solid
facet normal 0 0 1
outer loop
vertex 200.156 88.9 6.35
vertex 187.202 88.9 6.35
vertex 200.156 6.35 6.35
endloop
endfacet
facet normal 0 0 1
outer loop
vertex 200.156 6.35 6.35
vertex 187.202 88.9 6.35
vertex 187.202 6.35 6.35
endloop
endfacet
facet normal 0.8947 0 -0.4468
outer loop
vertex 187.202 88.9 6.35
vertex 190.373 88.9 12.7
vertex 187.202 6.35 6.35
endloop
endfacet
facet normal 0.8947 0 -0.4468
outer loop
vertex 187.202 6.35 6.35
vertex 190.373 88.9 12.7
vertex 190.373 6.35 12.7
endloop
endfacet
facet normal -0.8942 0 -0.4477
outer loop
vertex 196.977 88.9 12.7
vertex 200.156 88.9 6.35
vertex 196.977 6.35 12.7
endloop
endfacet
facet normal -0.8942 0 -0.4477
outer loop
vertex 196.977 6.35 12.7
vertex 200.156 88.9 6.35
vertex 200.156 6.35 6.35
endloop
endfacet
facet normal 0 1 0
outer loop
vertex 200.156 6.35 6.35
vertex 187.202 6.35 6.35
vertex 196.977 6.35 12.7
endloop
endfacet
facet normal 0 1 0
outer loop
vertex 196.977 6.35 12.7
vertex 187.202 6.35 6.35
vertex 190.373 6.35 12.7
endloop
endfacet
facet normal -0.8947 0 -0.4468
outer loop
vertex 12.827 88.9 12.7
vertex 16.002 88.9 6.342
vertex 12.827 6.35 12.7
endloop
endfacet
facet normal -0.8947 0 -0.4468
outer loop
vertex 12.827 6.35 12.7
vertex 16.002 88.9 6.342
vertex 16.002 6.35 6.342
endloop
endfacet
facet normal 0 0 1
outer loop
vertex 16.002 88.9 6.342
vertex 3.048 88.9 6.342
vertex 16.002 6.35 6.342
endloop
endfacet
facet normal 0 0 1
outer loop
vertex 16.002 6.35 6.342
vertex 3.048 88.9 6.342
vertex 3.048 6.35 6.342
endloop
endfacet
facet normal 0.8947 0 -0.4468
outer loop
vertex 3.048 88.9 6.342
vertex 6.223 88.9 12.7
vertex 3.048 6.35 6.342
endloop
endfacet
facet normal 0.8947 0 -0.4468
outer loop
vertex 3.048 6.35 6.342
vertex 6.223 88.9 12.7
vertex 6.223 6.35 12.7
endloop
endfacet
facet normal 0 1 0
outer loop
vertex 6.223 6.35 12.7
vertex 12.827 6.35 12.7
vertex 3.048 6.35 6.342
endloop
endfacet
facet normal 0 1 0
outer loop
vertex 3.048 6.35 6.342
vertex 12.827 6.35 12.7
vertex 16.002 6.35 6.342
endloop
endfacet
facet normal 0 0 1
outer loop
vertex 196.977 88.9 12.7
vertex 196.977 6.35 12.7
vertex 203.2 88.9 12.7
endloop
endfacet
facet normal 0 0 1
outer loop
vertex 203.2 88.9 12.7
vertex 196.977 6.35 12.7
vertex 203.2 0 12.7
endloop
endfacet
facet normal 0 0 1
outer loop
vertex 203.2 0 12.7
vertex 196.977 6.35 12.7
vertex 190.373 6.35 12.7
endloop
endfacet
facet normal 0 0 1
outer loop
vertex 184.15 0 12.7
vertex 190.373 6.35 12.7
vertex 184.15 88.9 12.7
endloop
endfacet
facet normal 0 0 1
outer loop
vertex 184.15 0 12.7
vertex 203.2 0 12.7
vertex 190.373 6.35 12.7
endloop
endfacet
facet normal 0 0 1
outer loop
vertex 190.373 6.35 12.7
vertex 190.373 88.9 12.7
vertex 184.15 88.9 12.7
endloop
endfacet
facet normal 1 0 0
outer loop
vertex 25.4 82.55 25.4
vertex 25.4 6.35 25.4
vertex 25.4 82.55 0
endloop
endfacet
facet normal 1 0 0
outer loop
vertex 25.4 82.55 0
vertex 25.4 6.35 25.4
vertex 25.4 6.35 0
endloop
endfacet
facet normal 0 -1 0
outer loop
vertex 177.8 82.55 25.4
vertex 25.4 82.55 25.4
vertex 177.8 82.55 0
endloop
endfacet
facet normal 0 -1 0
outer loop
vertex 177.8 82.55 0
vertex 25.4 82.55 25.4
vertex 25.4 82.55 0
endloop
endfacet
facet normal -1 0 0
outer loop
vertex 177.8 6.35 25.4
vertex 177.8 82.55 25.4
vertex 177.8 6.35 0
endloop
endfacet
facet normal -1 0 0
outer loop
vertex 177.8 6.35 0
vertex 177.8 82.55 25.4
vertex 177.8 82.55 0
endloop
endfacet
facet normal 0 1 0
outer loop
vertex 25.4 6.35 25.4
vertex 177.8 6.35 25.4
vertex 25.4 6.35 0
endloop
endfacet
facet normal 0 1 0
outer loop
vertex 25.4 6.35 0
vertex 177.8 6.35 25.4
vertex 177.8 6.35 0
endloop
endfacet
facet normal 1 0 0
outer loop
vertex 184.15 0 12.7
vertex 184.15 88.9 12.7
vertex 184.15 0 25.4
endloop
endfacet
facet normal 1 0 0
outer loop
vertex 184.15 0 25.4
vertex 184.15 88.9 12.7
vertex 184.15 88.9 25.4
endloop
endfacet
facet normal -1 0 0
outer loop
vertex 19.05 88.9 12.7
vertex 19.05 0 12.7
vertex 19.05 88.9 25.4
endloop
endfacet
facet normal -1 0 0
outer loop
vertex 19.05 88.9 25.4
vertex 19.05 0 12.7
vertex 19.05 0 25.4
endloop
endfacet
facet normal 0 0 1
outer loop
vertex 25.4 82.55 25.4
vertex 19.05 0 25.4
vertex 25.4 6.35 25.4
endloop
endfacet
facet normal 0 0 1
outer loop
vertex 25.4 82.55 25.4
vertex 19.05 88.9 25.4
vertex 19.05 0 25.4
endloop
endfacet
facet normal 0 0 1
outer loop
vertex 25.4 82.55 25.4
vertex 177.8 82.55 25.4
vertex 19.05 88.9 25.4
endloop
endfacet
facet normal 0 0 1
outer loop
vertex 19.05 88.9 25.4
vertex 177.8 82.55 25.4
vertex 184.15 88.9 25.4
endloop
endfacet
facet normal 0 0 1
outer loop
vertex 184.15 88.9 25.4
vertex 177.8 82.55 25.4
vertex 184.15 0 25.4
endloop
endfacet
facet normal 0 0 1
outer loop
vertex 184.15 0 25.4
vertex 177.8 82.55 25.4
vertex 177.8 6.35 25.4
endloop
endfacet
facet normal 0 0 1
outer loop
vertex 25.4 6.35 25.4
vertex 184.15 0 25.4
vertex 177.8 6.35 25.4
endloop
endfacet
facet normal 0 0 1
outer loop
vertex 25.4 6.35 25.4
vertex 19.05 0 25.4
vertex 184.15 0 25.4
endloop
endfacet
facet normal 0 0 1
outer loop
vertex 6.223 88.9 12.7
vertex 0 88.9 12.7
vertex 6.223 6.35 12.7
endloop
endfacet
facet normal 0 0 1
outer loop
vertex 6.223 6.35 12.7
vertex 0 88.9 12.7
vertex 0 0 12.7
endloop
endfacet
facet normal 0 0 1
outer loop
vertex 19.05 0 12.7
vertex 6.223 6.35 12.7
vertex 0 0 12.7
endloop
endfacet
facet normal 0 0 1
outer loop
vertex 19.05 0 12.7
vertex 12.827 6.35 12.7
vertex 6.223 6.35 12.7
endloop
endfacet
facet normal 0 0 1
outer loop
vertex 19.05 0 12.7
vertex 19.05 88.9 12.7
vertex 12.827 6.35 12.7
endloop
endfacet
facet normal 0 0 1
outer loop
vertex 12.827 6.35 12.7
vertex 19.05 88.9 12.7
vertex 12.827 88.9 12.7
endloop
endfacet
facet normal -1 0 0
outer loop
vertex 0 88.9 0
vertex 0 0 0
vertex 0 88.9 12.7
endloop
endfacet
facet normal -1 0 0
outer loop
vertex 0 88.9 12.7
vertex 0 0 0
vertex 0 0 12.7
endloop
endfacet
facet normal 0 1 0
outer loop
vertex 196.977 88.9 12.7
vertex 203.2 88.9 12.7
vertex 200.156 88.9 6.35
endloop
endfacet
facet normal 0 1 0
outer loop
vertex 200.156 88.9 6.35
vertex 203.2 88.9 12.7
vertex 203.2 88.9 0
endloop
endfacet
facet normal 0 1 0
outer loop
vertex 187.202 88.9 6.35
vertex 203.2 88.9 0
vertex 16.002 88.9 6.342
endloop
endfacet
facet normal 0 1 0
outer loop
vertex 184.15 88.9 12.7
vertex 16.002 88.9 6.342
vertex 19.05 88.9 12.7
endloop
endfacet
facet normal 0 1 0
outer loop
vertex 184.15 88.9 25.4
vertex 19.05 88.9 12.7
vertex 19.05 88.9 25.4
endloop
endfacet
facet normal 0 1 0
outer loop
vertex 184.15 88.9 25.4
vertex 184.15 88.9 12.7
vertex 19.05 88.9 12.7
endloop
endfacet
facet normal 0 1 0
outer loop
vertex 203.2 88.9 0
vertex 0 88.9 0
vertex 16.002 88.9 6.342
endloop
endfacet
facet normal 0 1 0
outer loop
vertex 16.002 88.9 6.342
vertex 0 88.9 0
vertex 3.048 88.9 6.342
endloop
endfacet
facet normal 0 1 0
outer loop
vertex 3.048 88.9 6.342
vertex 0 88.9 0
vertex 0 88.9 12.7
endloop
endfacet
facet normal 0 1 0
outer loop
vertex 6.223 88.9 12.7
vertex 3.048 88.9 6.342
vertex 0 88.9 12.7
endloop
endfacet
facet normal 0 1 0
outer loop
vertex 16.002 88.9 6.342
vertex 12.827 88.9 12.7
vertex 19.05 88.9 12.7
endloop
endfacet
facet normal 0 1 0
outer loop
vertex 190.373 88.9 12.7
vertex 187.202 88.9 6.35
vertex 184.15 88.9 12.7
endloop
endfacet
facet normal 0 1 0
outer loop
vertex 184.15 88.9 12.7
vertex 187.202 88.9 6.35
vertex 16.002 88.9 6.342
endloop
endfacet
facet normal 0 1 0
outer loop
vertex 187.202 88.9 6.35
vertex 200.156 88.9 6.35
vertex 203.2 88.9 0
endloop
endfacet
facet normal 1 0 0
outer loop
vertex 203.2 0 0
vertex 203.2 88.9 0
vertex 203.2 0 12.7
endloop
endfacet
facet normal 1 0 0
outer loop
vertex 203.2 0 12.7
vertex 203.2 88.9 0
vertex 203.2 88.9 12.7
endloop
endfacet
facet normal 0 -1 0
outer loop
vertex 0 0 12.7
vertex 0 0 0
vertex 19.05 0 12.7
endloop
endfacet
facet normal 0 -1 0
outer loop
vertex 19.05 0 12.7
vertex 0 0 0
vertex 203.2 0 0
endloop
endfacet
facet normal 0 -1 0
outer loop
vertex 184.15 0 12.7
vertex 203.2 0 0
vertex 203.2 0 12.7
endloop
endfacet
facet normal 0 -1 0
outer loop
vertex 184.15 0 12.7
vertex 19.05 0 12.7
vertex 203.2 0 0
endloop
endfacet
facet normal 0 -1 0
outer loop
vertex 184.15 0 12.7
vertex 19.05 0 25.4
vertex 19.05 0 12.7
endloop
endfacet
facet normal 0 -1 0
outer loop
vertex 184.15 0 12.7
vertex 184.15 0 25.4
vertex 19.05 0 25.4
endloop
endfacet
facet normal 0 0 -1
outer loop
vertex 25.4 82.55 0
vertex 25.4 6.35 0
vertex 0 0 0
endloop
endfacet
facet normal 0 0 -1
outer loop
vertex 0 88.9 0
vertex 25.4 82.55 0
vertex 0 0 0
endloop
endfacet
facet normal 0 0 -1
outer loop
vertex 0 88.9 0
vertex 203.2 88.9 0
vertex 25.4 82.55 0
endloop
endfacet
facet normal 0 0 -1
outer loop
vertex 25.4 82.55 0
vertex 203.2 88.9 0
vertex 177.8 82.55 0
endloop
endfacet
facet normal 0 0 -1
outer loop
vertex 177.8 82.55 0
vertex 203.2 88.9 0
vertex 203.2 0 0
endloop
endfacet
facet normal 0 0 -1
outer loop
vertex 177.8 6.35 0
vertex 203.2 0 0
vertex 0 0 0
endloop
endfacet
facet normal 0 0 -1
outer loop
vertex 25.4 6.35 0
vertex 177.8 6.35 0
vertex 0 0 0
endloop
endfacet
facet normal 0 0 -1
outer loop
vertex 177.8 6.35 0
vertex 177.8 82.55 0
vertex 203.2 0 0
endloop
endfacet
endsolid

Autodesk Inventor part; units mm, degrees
ref_plane "YZ Plane" through (0, 0, 0) normal (1, 0, 0) x (0, 1, 0)
ref_plane "XZ Plane" through (0, 0, 0) normal (0, 1, 0) x (-1, 0, 0)
ref_plane "XY Plane" through (0, 0, 0) normal (0, 0, 1) x (1, 0, 0)
sketch "Sketch2" plane through (0, 0, 0) normal (0, 0, 1) x (1, 0, 0)
  line L0 (0, 0) -> (203.2, 0)
  line L1 (203.2, 0) -> (203.2, 88.9)
  line L2 (203.2, 88.9) -> (0, 88.9)
  line L3 (0, 88.9) -> (0, 0)
  dimension "d6" = 203.2
  dimension "d7" = 88.9
extrude "Extrusion2" add sketch "Sketch2" along normal blind 12.7
sketch "Sketch3" plane through (0, 0, 12.7) normal (0, 0, 1) x (1, 0, 0)
  line L0 (0, 0) -> (203.2, 0) projected
  line L1 (203.2, 0) -> (203.2, 88.9) projected
  line L2 (203.2, 88.9) -> (0, 88.9) projected
  line L3 (0, 88.9) -> (0, 0) projected
  line L4 (203.2, 88.9) -> (0, 88.9) construction
  line L5 (0, 0) -> (203.2, 0) construction
  line L6 (0, 88.9) -> (203.2, 0) construction
  line L7 (203.2, 0) -> (203.2, 88.9) construction
  line L8 (203.2, 88.9) -> (0, 0) construction
  line L9 (25.4, 6.35) -> (177.8, 6.35)
  line L10 (177.8, 6.35) -> (177.8, 82.55)
  line L11 (177.8, 82.55) -> (25.4, 82.55)
  line L12 (25.4, 82.55) -> (25.4, 6.35)
  line L13 (25.4, 6.35) -> (177.8, 82.55) construction
  line L14 (177.8, 6.35) -> (25.4, 82.55) construction
  line L15 (19.05, 88.9) -> (184.15, 88.9)
  line L16 (184.15, 88.9) -> (184.15, 0)
  line L17 (184.15, 0) -> (19.05, 0)
  line L18 (19.05, 0) -> (19.05, 88.9)
  point P0 (101.6, 44.45)
  dimension "d10" = 152.4
  dimension "d11" = 76.2
  dimension "d12" = 6.35
extrude "Extrusion3" add sketch "Sketch3" along normal blind 12.7 contours L18 L2 L16 L0
sketch "Sketch5" plane through (0, 88.9, 0) normal (0, 1, 0) x (1, 0, 0)
  line L0 (203.2, 0) -> (0, 0) projected
  line L1 (0, 0) -> (0, -12.7) projected
  line L2 (19.05, -12.7) -> (0, -12.7) projected
  line L3 (19.05, -12.7) -> (19.05, -25.4) projected
  line L4 (184.15, -25.4) -> (19.05, -25.4) projected
  line L5 (184.15, -12.7) -> (184.15, -25.4) projected
  line L6 (203.2, -12.7) -> (184.15, -12.7) projected
  line L7 (203.2, 0) -> (203.2, -12.7) projected
  line L8 (0, 0) -> (203.2, 0) construction
  line L9 (0, -12.7) -> (19.05, -12.7)
  line L10 (19.05, -12.7) -> (19.05, 0) construction
  line L11 (19.05, 0) -> (0, 0) construction
  line L12 (0, 0) -> (0, -12.7) construction
  line L13 (19.05, -12.7) -> (0, -12.7) construction
  line L14 (9.525, -12.7) -> (9.525, -6.3424) construction
  line L15 (9.525, -12.7) -> (12.827, -12.7) construction
  line L16 (9.525, -12.7) -> (6.223, -12.7)
  line L17 (9.525, -6.3424) -> (16.002, -6.3424)
  line L18 (9.525, -6.3424) -> (3.048, -6.3424)
  line L19 (3.048, -6.3424) -> (6.223, -12.7)
  line L20 (6.223, -12.7) -> (-12.7, -12.7)
  line L21 (193.6826, 0) -> (193.675, -12.7) construction
  line L22 (193.675, -12.7) -> (196.977, -12.7)
  line L23 (184.15, -12.7) -> (203.2, -12.7) projected
  line L24 (193.675, -12.7) -> (190.373, -12.7)
  line L25 (193.675, -12.7) -> (193.6788, -6.35) construction
  line L26 (9.525, -12.7) -> (9.525, -6.35) construction
  line L27 (16.002, -6.3424) -> (12.827, -12.7)
  line L28 (196.977, -12.7) -> (190.373, -12.7)
  line L29 (3.048, -6.3424) -> (6.223, -12.7)
  line L30 (6.223, -12.7) -> (12.827, -12.7)
  line L31 (12.827, -12.7) -> (16.002, -6.3424)
  line L32 (16.002, -6.3424) -> (3.048, -6.3424)
  line L33 (193.6788, -6.35) -> (187.2018, -6.35)
  line L34 (193.6788, -6.35) -> (200.1558, -6.35)
  line L35 (187.2018, -6.35) -> (190.373, -12.7)
  line L36 (200.1558, -6.35) -> (196.977, -12.7)
  dimension "d15" = 3.302
  dimension "d16" = 3.302
  dimension "d17" = 6.477
  dimension "d18" = 6.477
  dimension "d19" = 3.302
  dimension "d20" = 3.302
  dimension "d25" = 6.35
  dimension "d26" = 6.35
  dimension "d31" = 6.477
  dimension "d32" = 6.477
extrude "Extrusion5" cut sketch "Sketch5" against normal blind 82.55 contours L6 L35 L33 L34 L36 | L19 L18 L17 L27 L2
sketch "Sketch6" plane through (0, 0, 12.7) normal (0, 0, 1) x (1, 0, 0)
  line L0 (25.4, 82.55) -> (25.4, 6.35) projected
  line L1 (25.4, 6.35) -> (177.8, 6.35) projected
  line L2 (25.4, 82.55) -> (177.8, 82.55)
  line L3 (177.8, 82.55) -> (177.8, 6.35)
  line L4 (177.8, 6.35) -> (25.4, 6.35)
  line L5 (25.4, 6.35) -> (25.4, 82.55)
  point P0 (0, 0)
extrude "Extrusion6" cut sketch "Sketch6" against normal blind 82.55
properties part number "doveTailSide"
